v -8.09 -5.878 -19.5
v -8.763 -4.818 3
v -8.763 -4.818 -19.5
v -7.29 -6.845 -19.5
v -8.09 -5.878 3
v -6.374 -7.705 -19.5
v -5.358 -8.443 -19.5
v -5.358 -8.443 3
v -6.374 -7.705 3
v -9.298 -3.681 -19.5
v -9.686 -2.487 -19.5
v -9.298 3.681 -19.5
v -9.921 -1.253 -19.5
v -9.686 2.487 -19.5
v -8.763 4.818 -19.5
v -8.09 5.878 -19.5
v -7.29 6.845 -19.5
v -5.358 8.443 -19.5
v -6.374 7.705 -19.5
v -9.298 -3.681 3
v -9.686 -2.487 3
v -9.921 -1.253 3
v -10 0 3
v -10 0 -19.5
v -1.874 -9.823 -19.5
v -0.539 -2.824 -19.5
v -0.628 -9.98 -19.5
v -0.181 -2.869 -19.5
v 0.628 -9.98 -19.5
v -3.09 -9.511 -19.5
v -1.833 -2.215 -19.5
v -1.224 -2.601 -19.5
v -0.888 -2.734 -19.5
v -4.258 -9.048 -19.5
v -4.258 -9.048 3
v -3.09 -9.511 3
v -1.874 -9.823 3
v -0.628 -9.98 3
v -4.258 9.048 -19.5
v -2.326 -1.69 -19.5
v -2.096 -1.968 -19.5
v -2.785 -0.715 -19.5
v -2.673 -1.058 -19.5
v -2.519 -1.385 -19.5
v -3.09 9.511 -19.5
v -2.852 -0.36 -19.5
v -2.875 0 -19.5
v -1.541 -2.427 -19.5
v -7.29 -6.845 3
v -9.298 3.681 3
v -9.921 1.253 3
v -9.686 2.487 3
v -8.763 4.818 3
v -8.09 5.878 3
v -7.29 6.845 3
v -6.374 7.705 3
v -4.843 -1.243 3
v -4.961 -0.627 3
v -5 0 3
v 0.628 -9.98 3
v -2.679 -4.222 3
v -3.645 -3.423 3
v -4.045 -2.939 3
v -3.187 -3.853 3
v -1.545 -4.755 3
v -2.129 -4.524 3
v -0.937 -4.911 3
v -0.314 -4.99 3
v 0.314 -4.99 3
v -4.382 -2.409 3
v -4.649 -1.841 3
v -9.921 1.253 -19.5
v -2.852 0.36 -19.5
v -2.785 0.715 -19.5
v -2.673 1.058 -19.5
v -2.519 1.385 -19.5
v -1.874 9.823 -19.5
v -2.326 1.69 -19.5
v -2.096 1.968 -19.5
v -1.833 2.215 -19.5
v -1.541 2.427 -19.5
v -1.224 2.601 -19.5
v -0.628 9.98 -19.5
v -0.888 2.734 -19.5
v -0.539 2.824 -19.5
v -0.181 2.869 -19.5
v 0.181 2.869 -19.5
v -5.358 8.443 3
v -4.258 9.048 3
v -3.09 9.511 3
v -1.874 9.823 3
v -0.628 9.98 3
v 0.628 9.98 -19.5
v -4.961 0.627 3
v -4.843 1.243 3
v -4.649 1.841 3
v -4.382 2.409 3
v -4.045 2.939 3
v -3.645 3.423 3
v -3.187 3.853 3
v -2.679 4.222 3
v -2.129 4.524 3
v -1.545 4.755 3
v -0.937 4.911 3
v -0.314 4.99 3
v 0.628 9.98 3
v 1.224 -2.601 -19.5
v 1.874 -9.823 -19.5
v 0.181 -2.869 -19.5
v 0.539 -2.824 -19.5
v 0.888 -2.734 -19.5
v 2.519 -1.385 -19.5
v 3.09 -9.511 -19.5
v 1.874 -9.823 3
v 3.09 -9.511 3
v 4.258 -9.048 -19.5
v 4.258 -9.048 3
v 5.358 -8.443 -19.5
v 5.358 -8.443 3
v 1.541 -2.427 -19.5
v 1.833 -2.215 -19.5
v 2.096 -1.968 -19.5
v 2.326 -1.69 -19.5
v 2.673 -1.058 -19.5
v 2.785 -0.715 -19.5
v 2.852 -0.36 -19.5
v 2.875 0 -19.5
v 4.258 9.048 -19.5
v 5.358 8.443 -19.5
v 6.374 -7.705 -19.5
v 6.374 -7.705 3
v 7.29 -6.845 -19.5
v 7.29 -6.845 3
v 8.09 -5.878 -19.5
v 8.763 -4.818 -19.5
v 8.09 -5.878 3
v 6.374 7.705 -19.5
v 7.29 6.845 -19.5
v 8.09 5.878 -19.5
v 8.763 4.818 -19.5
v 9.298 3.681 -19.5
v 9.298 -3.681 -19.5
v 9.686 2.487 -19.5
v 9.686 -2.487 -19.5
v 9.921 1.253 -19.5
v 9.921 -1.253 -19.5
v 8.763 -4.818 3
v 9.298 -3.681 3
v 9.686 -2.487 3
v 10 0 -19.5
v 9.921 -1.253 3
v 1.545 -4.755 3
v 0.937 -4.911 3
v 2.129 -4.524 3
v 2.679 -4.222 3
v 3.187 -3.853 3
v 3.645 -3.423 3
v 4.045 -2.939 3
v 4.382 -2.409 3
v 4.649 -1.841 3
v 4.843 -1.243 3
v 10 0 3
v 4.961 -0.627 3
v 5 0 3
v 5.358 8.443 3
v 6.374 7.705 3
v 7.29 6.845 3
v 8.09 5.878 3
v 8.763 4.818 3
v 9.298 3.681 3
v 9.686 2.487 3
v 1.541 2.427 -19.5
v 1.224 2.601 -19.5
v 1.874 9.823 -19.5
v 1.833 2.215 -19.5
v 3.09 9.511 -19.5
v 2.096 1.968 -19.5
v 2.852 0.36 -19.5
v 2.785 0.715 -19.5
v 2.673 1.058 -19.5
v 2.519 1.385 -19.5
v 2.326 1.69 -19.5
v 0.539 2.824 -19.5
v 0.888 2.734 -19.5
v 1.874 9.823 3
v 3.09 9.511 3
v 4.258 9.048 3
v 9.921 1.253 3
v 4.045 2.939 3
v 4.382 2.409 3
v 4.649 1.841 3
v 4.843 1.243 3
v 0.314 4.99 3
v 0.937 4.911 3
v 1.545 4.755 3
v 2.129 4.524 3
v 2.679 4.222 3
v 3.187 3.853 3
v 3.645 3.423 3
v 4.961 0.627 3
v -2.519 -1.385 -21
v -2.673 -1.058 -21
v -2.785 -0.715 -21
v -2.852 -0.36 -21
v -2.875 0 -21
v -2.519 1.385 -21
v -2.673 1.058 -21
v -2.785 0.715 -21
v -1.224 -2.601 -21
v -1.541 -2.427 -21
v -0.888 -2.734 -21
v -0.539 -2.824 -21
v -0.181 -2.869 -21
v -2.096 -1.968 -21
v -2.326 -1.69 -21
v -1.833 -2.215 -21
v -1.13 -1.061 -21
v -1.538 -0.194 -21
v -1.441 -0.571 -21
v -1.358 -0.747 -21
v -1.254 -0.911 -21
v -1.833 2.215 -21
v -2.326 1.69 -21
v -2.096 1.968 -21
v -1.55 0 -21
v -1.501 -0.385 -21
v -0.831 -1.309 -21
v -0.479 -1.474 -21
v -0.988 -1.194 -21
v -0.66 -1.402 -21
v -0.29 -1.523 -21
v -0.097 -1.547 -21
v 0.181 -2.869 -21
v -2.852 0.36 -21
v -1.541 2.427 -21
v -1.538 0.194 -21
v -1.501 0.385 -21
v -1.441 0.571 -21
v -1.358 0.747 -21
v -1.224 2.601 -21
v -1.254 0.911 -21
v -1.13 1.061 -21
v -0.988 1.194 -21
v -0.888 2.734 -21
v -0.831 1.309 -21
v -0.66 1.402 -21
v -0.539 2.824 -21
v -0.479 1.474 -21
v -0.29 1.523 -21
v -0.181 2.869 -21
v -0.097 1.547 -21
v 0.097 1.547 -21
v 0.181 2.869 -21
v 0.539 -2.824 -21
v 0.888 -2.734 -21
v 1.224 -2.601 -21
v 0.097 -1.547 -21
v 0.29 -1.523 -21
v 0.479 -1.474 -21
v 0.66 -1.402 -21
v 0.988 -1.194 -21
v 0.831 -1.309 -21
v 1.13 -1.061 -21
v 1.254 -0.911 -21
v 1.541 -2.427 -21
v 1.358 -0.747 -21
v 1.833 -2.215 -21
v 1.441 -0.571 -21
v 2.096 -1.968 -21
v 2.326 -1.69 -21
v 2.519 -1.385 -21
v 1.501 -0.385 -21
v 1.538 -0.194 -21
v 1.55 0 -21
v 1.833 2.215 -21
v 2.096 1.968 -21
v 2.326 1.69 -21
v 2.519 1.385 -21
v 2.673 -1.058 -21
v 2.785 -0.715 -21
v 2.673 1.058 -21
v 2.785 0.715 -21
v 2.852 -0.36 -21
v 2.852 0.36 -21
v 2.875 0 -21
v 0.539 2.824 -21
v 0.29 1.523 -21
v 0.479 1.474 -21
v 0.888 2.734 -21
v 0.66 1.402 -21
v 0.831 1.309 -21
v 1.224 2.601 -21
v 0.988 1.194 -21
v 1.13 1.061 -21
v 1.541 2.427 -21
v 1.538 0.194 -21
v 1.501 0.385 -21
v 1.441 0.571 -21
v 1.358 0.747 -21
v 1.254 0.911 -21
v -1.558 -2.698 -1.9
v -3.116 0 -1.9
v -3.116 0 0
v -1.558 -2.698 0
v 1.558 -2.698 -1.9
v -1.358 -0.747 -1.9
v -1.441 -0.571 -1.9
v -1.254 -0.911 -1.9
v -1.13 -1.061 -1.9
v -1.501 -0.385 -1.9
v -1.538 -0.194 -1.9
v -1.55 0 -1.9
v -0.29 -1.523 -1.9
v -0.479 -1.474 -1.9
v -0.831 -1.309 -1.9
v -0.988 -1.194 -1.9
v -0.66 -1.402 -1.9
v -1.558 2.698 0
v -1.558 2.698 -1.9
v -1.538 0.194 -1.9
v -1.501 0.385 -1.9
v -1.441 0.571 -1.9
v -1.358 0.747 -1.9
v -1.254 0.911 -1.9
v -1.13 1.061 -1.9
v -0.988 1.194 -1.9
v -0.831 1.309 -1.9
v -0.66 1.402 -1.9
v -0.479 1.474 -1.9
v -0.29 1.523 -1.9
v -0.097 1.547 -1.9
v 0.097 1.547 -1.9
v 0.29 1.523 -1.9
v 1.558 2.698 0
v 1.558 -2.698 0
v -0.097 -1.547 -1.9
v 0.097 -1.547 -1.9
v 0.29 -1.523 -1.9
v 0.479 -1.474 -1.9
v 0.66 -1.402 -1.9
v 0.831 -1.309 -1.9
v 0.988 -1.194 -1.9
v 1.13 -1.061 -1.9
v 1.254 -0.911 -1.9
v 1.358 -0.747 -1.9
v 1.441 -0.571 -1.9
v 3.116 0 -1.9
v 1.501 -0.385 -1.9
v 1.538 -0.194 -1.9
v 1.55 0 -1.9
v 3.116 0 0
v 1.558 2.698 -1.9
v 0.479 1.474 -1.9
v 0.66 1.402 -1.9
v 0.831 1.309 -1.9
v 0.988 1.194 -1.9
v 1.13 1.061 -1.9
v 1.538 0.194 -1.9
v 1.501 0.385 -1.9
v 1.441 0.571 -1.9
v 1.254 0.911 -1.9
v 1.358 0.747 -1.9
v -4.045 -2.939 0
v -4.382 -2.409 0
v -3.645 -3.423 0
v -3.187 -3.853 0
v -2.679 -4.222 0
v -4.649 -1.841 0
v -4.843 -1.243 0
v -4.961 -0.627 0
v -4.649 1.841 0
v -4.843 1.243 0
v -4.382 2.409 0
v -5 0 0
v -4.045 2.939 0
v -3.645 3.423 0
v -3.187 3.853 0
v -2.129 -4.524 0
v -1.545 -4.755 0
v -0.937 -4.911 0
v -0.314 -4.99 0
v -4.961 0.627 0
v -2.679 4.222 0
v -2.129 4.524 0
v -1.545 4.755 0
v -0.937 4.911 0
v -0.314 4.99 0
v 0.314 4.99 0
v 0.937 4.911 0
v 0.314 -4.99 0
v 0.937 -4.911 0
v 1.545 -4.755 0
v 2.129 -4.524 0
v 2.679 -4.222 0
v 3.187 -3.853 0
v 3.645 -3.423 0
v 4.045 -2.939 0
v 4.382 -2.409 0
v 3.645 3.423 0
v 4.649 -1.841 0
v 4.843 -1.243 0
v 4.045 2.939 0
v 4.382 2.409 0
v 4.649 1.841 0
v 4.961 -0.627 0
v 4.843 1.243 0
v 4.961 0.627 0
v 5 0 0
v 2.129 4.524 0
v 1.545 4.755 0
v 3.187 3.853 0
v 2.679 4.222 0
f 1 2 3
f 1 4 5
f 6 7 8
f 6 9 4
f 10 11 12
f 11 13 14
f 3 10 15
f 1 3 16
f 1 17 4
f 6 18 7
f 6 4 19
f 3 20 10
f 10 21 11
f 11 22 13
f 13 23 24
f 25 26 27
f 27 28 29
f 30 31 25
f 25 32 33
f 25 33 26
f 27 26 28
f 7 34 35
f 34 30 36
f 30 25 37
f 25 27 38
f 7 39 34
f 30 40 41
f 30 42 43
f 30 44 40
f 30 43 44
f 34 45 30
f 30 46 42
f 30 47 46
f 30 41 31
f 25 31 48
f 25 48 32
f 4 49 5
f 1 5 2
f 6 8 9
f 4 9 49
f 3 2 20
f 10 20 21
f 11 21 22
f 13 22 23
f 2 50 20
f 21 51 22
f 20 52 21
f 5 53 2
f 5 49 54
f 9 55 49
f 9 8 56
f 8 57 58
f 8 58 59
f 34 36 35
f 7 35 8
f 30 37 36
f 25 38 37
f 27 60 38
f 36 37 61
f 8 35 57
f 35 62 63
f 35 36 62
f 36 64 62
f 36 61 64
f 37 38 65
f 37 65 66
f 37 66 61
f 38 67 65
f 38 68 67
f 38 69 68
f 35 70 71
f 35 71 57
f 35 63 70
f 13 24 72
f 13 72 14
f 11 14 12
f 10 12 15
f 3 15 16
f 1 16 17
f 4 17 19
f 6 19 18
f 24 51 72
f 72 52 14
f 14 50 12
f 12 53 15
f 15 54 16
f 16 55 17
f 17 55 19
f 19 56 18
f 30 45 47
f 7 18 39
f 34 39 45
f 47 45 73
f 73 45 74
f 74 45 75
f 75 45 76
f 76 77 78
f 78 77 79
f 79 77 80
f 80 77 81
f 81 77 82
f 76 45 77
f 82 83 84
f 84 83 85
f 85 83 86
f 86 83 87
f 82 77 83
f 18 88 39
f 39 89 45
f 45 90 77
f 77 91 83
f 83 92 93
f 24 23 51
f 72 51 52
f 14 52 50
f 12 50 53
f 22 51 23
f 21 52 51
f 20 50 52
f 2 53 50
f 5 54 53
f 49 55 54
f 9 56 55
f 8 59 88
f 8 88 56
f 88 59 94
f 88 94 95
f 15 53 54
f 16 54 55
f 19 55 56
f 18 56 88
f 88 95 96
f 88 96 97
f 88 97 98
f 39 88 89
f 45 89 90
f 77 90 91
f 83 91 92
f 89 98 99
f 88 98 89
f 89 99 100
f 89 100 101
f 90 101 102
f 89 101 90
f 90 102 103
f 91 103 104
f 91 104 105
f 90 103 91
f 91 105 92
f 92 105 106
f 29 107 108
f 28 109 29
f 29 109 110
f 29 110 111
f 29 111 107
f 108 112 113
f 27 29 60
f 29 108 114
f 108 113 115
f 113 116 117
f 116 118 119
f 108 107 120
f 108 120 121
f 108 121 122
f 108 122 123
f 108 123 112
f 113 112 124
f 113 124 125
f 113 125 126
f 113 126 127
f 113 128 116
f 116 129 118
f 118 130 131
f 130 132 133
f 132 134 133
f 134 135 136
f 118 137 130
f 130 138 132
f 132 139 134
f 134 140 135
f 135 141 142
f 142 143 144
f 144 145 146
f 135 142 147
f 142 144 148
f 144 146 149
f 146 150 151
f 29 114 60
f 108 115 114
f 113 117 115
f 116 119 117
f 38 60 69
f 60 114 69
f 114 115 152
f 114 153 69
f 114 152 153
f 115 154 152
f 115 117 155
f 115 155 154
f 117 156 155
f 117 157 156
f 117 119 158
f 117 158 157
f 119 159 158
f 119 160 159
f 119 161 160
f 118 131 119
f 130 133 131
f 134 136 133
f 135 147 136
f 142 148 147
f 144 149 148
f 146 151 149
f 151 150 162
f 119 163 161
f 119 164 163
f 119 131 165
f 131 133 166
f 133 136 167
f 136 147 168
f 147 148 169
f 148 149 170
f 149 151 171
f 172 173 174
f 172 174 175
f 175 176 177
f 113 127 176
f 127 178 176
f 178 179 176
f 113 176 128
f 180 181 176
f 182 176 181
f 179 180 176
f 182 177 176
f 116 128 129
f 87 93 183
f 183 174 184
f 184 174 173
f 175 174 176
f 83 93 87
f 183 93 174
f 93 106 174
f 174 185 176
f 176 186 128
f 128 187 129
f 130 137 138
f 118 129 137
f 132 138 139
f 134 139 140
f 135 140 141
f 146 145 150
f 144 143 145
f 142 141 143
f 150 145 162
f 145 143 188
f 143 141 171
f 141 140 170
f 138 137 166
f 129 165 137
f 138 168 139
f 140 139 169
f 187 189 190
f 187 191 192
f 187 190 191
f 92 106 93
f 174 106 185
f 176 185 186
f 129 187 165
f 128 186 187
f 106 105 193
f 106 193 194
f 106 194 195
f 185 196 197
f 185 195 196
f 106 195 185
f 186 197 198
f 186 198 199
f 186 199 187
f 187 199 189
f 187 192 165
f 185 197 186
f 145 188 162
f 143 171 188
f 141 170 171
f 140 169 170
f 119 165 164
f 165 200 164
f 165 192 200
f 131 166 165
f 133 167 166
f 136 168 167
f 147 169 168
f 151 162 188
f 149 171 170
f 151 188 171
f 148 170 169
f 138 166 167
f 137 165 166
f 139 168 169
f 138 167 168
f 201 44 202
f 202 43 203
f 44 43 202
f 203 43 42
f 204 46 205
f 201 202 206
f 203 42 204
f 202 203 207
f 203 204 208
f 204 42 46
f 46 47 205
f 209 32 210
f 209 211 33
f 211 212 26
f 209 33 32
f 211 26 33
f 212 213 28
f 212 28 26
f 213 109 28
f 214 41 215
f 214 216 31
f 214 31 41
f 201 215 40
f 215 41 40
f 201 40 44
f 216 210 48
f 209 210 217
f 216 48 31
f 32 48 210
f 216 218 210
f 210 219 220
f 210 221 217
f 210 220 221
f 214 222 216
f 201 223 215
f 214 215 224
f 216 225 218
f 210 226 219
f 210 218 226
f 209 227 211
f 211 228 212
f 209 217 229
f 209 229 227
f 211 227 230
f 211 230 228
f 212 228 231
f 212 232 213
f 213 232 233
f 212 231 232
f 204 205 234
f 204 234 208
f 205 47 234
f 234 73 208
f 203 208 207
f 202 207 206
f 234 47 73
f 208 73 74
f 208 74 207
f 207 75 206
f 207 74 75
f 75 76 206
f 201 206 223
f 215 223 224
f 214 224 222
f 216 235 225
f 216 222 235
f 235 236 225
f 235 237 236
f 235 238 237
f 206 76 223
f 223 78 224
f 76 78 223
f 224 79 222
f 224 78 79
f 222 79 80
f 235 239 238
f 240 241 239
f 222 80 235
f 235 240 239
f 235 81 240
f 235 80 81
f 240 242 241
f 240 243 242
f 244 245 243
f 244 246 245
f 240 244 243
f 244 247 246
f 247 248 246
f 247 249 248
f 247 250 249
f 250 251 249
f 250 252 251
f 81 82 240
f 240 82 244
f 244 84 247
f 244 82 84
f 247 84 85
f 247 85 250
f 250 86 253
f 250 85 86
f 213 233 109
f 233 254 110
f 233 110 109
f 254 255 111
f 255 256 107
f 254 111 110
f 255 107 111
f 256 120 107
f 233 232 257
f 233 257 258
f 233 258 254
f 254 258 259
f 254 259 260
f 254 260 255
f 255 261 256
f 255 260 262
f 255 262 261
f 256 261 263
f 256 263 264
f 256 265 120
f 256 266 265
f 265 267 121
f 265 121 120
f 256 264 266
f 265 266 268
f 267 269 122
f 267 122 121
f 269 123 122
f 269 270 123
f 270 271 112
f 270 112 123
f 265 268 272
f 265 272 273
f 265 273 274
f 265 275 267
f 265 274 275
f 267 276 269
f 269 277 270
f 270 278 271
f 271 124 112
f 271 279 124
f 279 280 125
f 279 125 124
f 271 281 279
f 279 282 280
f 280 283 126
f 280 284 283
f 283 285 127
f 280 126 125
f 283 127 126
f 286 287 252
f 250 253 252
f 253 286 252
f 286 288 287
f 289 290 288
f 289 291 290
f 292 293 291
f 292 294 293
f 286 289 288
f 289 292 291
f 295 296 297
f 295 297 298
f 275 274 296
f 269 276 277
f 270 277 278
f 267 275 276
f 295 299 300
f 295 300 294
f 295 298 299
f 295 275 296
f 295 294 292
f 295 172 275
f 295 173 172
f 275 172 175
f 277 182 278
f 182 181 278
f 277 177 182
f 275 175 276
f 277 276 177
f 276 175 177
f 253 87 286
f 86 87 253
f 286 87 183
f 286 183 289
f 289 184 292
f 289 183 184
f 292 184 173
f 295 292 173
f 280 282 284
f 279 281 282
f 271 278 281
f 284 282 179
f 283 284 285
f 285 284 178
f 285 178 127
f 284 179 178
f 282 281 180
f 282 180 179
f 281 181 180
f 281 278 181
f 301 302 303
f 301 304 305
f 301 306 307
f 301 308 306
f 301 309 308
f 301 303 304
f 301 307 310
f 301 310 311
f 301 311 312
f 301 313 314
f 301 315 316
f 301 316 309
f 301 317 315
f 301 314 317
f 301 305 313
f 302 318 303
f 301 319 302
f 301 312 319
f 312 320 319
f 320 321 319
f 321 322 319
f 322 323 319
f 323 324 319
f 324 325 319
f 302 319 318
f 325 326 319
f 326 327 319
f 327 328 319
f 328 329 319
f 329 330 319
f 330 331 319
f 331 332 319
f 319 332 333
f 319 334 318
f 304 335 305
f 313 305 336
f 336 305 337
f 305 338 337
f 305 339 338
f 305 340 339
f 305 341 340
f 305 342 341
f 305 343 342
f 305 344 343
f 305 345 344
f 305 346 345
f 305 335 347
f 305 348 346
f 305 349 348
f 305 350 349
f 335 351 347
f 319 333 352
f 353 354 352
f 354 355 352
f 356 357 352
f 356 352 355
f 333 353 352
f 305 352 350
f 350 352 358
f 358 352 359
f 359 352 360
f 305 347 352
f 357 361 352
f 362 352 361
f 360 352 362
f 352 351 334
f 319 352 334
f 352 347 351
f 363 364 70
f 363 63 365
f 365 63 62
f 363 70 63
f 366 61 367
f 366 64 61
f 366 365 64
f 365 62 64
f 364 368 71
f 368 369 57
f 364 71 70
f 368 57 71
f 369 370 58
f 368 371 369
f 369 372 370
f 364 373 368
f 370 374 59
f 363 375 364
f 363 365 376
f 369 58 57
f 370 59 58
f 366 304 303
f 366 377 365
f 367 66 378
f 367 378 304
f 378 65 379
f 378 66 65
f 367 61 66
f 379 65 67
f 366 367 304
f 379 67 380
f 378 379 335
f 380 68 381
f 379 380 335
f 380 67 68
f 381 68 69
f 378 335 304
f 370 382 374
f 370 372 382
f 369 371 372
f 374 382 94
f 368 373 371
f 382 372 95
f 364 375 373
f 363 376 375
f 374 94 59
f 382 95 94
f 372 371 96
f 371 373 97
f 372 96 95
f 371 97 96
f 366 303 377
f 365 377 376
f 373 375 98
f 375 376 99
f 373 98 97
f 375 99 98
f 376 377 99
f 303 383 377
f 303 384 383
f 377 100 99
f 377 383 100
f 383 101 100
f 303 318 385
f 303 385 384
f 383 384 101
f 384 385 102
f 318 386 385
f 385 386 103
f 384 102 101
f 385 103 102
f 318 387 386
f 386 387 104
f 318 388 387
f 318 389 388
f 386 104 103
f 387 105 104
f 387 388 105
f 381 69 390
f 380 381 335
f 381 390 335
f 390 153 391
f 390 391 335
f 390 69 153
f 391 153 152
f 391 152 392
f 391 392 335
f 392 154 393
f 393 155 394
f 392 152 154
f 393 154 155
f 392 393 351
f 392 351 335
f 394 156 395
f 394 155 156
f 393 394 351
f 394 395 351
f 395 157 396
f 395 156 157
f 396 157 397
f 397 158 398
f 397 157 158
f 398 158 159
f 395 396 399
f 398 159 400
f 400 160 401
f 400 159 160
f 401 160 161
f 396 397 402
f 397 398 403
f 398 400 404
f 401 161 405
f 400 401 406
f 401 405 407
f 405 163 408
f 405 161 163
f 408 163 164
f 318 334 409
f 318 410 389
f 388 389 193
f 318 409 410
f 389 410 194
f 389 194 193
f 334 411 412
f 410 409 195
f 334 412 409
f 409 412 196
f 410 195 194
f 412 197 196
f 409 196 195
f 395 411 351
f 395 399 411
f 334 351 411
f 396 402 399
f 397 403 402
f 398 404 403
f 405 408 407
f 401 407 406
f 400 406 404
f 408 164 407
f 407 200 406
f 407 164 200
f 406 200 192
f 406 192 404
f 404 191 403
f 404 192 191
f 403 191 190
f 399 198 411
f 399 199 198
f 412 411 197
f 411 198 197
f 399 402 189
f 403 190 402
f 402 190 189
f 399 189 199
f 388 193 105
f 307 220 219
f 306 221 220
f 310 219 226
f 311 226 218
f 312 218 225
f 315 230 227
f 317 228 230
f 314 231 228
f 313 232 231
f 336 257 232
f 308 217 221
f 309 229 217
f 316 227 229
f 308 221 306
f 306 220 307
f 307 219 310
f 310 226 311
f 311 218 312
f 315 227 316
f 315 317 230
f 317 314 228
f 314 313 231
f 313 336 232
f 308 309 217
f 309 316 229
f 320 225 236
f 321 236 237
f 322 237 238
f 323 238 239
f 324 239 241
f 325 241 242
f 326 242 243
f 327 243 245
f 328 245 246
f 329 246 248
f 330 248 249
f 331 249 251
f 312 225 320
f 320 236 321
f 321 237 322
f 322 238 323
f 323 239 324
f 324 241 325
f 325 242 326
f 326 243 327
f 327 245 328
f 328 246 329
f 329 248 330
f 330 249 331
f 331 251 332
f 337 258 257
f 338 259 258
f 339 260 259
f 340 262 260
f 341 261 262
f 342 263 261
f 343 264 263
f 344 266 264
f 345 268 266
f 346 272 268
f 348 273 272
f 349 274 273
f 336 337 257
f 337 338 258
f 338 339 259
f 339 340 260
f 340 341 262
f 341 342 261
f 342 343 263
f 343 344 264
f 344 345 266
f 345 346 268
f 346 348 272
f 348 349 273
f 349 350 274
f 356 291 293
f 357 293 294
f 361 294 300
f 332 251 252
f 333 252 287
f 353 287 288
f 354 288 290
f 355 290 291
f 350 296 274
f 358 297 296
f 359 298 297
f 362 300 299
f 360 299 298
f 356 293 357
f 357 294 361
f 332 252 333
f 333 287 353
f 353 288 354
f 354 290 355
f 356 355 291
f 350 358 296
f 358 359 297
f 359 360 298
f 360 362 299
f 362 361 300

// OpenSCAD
$fn = 50;


difference() {
	union() {
		translate(v = [0, 0, -19.5000000000]) {
			cylinder(h = 22.5000000000, r = 10.0000000000);
		}
		#translate(v = [0, 0, -21.0000000000]) {
			cylinder(h = 21, r = 2.8750000000);
		}
	}
	union() {
		translate(v = [0, 0, 0]) {
			rotate(a = [0, 0, 0]) {
				difference() {
					union() {
						translate(v = [0, 0, -1.9000000000]) {
							linear_extrude(height = 1.9000000000) {
								polygon(points = [[3.1158000000, 0.0000000000], [1.5579000000, 2.6983619531], [-1.5579000000, 2.6983619531], [-3.1158000000, 0.0000000000], [-1.5579000000, -2.6983619531], [1.5579000000, -2.6983619531]]);
							}
						}
					}
					union();
				}
			}
		}
		#cylinder(h = 3, r = 5.0000000000);
		#translate(v = [0, 0, -100.0000000000]) {
			cylinder(h = 200, r = 1.5500000000);
		}
	}
}
